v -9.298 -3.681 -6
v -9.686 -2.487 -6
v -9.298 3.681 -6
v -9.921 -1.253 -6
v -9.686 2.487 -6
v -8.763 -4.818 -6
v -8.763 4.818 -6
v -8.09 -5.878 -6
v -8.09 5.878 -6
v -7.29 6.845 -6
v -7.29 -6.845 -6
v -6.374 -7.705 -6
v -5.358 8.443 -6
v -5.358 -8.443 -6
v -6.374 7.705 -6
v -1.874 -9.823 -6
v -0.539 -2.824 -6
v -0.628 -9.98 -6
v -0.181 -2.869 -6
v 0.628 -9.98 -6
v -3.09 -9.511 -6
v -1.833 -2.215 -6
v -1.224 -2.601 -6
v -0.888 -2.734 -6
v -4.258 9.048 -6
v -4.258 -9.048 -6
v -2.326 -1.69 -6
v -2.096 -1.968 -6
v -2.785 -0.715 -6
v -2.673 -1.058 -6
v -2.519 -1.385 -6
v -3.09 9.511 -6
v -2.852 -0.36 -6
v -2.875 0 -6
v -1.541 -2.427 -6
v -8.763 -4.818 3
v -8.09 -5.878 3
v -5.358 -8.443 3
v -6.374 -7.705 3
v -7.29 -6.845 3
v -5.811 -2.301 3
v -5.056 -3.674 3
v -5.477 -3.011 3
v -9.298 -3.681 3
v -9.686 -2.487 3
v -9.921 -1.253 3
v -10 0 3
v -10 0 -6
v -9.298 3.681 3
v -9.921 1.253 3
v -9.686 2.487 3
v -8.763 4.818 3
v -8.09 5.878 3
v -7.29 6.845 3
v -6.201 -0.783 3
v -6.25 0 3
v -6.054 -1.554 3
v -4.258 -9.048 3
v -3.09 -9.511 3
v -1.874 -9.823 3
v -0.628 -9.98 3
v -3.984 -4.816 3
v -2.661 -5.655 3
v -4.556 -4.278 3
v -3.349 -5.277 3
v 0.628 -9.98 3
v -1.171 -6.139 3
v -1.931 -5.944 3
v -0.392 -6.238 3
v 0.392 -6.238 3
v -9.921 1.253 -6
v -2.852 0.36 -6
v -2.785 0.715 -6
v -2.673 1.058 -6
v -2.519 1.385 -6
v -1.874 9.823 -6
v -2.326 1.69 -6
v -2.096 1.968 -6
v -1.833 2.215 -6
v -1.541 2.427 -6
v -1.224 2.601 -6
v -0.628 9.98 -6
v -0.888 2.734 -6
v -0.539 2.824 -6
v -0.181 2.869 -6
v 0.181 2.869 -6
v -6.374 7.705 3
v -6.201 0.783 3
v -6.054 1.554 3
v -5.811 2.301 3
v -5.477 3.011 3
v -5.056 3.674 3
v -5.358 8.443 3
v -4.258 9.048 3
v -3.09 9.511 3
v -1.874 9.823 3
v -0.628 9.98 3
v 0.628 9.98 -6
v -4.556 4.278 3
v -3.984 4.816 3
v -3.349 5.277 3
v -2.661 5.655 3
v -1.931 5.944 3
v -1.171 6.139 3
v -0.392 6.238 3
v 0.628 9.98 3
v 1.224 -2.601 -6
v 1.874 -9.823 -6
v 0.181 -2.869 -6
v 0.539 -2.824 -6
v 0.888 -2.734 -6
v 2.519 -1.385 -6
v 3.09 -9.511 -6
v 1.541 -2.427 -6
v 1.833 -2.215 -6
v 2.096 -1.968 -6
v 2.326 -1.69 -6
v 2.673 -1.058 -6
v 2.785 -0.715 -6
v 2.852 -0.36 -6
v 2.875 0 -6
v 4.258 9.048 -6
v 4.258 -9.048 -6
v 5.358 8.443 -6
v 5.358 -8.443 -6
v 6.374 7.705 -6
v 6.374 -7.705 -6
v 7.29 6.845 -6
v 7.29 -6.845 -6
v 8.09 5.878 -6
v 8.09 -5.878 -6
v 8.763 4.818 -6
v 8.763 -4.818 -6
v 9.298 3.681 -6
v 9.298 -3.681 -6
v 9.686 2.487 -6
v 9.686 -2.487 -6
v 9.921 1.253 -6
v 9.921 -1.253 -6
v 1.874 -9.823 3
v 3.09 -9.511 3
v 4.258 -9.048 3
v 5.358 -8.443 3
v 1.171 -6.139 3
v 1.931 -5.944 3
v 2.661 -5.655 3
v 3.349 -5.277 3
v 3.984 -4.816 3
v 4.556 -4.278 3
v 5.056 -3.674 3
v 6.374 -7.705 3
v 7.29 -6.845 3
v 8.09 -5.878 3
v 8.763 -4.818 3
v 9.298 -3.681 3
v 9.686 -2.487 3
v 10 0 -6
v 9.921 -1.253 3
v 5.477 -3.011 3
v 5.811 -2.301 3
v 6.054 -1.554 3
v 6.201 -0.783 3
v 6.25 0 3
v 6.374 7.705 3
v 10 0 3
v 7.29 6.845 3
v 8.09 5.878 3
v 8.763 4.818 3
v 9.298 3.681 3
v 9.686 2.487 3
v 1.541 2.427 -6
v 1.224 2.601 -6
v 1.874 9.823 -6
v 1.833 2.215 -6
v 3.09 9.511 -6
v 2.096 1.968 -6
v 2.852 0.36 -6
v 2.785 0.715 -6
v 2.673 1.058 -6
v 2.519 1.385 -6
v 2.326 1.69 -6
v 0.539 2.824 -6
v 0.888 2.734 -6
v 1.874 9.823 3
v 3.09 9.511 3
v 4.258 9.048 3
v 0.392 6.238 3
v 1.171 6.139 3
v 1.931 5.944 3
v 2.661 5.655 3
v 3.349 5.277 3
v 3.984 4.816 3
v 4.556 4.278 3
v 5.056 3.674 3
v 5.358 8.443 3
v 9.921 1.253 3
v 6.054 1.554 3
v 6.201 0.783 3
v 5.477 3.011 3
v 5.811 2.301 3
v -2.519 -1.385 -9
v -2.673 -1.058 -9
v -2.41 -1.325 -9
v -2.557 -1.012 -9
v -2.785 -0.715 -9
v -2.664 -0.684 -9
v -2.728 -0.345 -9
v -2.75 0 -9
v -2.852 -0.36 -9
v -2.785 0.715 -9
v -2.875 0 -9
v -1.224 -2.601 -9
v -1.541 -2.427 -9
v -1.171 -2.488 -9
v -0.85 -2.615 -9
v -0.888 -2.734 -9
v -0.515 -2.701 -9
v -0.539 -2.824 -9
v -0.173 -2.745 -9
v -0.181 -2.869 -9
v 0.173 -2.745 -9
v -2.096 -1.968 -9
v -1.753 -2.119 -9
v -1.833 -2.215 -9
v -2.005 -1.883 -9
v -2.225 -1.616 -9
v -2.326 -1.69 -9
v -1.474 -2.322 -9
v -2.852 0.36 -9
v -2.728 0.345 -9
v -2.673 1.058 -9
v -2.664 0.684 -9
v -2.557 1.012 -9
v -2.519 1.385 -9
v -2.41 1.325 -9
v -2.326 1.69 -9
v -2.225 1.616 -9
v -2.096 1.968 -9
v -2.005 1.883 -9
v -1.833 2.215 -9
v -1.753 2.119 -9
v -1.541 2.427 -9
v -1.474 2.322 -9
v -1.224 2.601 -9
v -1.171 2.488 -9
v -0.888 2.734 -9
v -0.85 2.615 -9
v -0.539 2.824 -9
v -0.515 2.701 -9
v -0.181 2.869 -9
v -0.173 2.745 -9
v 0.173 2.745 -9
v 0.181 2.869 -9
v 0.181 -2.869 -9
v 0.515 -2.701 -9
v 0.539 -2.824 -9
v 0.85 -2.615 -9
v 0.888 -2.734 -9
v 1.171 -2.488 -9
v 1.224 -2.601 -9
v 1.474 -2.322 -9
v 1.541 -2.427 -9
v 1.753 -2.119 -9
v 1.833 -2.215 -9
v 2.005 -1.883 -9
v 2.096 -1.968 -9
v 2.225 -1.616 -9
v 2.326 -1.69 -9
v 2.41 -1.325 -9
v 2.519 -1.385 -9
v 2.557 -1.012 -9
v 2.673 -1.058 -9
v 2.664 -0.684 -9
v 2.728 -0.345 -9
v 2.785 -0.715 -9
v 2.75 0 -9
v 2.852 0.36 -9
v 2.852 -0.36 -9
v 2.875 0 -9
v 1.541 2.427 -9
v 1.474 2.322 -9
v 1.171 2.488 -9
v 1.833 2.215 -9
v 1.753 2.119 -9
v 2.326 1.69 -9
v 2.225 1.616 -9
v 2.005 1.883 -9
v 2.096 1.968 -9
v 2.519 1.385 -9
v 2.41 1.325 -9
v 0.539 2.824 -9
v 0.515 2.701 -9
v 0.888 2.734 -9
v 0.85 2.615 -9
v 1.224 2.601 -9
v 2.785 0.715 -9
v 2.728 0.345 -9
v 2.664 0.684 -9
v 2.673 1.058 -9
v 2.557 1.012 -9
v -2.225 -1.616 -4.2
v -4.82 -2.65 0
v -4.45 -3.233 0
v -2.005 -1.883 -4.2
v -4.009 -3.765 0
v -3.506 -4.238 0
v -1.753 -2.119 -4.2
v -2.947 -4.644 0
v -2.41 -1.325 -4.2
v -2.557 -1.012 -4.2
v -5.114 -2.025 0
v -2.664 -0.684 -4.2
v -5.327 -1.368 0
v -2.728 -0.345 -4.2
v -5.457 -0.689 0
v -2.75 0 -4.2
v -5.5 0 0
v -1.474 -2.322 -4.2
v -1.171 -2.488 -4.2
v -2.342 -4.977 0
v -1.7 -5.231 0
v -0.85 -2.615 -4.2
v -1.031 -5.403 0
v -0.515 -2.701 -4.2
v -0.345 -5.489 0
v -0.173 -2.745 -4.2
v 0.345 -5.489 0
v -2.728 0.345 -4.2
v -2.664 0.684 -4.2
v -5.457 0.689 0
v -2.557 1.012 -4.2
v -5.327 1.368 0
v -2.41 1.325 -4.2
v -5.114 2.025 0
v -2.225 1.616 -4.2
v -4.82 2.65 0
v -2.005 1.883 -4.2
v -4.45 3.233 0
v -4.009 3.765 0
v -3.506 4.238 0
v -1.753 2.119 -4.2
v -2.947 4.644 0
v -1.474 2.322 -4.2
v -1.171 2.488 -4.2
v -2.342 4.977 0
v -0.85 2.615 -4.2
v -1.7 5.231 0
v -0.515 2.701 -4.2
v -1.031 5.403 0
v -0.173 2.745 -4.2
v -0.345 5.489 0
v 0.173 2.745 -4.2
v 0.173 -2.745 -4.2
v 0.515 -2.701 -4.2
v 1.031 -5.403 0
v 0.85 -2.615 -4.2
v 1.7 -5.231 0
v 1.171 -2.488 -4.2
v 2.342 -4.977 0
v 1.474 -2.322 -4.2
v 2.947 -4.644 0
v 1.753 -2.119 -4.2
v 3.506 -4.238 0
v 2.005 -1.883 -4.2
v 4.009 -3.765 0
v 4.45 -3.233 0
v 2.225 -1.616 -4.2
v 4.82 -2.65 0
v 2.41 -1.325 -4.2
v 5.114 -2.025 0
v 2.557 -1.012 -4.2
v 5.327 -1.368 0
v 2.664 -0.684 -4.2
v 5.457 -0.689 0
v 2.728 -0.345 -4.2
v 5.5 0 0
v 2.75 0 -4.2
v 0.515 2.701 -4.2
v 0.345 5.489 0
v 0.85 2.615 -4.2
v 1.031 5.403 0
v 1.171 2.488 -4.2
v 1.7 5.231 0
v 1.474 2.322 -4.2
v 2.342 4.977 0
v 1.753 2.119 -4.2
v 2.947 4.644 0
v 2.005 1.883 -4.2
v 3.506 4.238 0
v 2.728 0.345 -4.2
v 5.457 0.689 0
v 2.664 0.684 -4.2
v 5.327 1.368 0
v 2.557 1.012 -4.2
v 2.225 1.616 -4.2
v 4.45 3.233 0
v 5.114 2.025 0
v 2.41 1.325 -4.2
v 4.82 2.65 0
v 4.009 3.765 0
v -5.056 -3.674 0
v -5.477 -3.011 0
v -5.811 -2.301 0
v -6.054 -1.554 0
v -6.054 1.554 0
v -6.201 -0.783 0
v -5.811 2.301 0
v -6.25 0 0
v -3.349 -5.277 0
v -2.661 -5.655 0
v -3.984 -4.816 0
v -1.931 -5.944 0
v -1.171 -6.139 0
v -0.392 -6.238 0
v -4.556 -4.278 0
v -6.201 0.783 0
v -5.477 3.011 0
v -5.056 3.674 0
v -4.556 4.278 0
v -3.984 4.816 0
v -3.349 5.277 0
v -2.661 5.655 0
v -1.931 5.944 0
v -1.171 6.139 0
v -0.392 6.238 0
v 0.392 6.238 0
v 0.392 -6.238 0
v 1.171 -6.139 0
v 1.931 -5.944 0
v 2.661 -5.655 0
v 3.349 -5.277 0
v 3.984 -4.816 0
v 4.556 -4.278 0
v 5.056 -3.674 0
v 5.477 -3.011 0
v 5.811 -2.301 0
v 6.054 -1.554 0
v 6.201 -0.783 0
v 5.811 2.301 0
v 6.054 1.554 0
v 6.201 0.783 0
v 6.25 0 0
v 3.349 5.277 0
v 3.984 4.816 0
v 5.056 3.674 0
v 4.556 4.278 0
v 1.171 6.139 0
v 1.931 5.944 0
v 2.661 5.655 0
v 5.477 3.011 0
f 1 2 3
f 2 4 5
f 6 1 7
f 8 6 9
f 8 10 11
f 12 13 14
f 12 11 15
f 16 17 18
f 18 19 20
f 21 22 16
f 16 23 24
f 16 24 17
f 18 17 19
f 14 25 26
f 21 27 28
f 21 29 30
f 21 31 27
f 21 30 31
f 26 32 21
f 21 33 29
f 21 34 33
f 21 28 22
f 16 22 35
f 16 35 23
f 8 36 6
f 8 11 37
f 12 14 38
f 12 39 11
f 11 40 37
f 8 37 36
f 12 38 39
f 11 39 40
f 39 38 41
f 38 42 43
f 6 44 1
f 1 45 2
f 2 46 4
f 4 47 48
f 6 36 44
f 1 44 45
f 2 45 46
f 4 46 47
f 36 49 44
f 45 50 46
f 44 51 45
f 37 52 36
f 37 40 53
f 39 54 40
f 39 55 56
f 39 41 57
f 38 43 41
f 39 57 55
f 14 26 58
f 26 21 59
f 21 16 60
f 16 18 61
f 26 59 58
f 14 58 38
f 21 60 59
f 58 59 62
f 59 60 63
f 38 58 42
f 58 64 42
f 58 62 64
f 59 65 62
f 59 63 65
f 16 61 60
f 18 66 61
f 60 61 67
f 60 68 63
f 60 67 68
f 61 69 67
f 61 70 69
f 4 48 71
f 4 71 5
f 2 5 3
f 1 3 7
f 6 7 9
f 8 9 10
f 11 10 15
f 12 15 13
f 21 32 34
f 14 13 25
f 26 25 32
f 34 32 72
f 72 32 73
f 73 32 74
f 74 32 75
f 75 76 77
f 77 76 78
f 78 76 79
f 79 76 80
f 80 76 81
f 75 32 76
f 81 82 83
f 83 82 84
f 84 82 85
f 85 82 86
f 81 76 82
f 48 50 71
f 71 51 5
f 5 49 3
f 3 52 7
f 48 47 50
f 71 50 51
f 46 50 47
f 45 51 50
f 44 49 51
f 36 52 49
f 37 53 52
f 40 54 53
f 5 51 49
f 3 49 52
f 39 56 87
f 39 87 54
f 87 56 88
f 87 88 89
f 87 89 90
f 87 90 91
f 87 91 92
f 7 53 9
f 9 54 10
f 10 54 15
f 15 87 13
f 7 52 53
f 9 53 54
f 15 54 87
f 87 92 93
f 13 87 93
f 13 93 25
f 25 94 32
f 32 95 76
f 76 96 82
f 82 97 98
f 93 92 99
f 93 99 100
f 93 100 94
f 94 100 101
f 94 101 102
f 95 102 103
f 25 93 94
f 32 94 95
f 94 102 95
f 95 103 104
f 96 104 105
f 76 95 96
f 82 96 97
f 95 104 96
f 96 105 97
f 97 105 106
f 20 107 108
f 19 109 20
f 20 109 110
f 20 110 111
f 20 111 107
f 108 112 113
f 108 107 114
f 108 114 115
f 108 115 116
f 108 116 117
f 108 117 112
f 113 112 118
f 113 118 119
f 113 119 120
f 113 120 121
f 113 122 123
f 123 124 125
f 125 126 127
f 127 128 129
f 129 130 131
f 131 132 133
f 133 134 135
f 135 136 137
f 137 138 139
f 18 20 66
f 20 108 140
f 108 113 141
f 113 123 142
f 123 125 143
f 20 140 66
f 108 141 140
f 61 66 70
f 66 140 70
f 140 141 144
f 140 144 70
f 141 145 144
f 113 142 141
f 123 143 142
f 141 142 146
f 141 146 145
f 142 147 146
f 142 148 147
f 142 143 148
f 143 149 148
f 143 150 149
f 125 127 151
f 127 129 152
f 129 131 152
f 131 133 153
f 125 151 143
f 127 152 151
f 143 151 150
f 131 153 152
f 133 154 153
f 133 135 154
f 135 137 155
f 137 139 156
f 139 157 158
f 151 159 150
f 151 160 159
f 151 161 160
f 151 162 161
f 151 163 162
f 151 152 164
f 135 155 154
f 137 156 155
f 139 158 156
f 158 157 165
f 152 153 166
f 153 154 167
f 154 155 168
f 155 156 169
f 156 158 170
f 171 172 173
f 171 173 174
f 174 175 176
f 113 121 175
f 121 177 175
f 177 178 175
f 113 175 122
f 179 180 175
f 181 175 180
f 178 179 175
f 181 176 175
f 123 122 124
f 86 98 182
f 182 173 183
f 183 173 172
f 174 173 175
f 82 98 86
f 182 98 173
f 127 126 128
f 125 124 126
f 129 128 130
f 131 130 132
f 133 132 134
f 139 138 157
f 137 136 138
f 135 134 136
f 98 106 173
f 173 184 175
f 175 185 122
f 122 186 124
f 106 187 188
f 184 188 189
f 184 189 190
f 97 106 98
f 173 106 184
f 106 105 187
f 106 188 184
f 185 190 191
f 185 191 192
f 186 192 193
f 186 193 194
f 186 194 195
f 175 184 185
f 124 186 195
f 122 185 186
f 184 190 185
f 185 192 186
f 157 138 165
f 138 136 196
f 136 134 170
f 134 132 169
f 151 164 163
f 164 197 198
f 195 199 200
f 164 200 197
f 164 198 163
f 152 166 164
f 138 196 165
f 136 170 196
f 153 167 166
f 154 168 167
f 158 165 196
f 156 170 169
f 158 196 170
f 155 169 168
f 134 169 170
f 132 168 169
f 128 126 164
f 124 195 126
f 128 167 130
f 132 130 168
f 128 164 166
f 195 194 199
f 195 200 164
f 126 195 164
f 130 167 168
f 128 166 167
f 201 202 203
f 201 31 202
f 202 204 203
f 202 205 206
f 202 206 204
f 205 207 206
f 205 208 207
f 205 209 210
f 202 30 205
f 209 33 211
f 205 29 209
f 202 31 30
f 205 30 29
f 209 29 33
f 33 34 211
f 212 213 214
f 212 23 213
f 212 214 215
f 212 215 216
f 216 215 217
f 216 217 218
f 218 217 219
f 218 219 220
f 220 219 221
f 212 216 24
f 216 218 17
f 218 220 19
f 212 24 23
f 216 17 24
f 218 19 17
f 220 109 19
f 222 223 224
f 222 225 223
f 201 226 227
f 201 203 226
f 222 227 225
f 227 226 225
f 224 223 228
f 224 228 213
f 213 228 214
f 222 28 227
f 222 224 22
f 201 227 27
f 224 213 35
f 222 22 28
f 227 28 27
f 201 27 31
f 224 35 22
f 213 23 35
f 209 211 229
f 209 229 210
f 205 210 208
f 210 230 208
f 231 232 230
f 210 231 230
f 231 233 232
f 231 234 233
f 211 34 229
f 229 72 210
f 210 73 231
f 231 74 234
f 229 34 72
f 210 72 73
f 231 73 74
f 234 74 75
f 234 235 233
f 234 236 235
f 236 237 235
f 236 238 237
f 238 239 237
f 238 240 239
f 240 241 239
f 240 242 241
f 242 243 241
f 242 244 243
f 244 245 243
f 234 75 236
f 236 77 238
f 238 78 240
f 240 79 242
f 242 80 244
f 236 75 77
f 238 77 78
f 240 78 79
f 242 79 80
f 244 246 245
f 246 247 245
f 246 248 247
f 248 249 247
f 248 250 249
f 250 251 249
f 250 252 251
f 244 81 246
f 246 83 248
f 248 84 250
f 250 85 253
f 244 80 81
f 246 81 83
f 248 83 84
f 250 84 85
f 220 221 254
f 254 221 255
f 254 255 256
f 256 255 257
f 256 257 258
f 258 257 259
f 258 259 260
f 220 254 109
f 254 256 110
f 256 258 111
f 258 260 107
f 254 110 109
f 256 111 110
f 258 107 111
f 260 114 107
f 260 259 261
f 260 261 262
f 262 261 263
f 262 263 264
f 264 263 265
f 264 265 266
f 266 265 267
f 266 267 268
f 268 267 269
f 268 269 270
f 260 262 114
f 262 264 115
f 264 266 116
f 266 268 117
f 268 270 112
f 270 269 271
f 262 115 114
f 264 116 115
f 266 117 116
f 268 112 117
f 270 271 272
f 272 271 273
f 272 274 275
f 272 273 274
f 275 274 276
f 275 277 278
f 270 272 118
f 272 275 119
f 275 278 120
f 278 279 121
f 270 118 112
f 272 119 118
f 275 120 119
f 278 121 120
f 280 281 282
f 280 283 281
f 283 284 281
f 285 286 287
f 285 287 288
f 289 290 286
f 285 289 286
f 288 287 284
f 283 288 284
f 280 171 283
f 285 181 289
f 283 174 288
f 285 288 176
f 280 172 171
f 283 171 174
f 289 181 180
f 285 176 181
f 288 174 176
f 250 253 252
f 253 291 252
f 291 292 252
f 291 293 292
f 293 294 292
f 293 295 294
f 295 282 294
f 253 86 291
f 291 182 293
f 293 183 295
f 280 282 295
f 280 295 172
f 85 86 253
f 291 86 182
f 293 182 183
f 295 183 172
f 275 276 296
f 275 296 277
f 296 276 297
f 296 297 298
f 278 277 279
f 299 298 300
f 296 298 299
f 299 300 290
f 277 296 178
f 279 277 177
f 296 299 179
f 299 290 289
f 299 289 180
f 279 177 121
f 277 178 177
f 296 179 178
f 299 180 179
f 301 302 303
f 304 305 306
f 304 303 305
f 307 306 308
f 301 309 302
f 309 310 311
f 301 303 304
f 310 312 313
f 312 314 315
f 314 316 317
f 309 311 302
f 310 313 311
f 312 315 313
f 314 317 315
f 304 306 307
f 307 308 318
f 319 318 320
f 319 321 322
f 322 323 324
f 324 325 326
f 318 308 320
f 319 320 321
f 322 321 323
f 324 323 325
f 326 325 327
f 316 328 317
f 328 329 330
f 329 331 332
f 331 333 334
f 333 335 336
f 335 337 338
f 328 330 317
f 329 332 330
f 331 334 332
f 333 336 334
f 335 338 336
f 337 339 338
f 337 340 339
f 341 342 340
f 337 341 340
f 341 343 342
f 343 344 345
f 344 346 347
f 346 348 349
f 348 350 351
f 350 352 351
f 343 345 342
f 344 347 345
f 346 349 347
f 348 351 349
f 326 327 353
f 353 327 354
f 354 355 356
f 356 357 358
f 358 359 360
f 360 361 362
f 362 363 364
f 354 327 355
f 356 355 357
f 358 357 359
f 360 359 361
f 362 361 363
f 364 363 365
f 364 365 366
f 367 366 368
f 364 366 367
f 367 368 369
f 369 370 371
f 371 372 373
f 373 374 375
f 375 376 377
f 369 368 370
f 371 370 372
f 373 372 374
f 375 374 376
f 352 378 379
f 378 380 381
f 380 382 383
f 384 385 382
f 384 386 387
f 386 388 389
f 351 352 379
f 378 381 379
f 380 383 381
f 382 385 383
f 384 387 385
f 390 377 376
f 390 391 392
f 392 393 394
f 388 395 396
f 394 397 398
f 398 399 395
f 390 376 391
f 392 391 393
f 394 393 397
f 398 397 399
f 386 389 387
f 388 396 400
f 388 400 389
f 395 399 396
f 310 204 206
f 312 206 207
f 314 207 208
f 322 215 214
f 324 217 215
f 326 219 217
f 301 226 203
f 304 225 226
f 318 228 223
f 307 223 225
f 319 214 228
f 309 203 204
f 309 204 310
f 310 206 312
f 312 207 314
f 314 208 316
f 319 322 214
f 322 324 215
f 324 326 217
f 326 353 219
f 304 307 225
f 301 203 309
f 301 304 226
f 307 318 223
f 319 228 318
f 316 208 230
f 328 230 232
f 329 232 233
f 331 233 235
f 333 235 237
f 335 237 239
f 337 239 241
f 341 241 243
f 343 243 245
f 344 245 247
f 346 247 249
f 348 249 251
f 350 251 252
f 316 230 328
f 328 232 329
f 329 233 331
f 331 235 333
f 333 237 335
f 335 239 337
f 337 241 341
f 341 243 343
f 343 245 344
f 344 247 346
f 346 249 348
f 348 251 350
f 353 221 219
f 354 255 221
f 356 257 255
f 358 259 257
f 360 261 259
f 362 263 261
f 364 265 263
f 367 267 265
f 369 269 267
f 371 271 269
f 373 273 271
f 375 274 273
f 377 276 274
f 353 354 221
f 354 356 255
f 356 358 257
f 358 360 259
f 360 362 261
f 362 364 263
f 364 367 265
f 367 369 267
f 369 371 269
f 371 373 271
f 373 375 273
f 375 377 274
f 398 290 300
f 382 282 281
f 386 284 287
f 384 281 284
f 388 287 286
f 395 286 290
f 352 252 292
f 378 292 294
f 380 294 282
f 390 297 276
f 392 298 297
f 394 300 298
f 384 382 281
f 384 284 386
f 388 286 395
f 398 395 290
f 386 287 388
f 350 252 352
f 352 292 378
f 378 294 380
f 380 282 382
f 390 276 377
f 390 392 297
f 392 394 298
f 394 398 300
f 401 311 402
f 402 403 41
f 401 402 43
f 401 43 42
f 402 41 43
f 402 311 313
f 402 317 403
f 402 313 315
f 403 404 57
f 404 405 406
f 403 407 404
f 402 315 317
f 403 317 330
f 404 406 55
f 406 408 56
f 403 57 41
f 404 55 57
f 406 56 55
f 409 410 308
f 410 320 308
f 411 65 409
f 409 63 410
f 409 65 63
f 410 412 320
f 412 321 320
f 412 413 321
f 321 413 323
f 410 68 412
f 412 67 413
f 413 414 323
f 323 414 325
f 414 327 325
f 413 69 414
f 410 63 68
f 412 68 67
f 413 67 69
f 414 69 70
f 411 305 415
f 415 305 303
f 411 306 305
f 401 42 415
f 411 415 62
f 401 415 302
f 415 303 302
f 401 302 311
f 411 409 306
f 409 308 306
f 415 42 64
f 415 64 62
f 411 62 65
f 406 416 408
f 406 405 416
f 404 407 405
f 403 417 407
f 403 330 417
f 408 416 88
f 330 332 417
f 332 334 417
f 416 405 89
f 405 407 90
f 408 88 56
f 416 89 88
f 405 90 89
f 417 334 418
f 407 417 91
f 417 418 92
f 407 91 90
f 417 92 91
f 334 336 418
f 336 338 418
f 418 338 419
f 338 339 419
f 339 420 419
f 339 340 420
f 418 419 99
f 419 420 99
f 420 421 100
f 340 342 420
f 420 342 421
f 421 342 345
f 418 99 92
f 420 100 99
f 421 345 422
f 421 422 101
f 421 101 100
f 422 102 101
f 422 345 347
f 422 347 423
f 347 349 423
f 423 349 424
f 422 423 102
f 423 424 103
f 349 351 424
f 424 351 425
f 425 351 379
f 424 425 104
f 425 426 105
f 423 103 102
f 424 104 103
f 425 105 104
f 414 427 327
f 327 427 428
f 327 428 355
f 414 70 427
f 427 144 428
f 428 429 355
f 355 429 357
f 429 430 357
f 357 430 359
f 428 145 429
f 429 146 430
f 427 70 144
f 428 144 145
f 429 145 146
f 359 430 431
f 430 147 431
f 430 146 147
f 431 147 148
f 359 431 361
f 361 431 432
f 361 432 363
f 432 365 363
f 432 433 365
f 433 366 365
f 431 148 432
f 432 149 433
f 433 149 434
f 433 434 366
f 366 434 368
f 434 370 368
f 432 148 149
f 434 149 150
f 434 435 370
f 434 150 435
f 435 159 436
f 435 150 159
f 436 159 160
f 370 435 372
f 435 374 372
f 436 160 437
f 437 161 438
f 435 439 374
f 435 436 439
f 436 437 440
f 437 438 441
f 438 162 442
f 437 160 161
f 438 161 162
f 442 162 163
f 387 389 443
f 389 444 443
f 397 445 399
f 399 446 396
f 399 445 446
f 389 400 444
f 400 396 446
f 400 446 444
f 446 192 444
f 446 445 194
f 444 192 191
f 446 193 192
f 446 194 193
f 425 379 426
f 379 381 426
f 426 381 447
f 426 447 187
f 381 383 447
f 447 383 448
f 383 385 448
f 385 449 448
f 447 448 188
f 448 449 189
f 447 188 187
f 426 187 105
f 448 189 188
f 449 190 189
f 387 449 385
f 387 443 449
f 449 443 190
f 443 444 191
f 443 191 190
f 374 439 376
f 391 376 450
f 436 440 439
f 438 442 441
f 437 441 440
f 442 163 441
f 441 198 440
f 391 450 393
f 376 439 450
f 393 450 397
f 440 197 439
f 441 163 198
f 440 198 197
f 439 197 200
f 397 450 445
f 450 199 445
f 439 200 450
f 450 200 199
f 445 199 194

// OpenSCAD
$fn = 50;

difference() {
	union() {
		translate(v = [0, 0, -6.0]) {
			cylinder(h = 9, r = 10.0);
		}
		#translate(v = [0, 0, -9.0]) {
			cylinder(h = 9, r = 2.875);
		}
	}
	union() {
		translate(v = [0, 0, 0]) {
			rotate(a = [0, 0, 0]) {
				difference() {
					union() {
						translate(v = [0, 0, -9.0]) {
							cylinder(h = 9, r = 2.25);
						}
						translate(v = [0, 0, -4.2]) {
							cylinder(h = 4.2, r1 = 2.75, r2 = 5.5);
						}
						translate(v = [0, 0, -9.0]) {
							cylinder(h = 9, r = 2.75);
						}
						translate(v = [0, 0, -9.0]) {
							cylinder(h = 9, r = 2.25);
						}
					}
					union();
				}
			}
		}
		#cylinder(h = 3, r = 6.25);
	}
}
